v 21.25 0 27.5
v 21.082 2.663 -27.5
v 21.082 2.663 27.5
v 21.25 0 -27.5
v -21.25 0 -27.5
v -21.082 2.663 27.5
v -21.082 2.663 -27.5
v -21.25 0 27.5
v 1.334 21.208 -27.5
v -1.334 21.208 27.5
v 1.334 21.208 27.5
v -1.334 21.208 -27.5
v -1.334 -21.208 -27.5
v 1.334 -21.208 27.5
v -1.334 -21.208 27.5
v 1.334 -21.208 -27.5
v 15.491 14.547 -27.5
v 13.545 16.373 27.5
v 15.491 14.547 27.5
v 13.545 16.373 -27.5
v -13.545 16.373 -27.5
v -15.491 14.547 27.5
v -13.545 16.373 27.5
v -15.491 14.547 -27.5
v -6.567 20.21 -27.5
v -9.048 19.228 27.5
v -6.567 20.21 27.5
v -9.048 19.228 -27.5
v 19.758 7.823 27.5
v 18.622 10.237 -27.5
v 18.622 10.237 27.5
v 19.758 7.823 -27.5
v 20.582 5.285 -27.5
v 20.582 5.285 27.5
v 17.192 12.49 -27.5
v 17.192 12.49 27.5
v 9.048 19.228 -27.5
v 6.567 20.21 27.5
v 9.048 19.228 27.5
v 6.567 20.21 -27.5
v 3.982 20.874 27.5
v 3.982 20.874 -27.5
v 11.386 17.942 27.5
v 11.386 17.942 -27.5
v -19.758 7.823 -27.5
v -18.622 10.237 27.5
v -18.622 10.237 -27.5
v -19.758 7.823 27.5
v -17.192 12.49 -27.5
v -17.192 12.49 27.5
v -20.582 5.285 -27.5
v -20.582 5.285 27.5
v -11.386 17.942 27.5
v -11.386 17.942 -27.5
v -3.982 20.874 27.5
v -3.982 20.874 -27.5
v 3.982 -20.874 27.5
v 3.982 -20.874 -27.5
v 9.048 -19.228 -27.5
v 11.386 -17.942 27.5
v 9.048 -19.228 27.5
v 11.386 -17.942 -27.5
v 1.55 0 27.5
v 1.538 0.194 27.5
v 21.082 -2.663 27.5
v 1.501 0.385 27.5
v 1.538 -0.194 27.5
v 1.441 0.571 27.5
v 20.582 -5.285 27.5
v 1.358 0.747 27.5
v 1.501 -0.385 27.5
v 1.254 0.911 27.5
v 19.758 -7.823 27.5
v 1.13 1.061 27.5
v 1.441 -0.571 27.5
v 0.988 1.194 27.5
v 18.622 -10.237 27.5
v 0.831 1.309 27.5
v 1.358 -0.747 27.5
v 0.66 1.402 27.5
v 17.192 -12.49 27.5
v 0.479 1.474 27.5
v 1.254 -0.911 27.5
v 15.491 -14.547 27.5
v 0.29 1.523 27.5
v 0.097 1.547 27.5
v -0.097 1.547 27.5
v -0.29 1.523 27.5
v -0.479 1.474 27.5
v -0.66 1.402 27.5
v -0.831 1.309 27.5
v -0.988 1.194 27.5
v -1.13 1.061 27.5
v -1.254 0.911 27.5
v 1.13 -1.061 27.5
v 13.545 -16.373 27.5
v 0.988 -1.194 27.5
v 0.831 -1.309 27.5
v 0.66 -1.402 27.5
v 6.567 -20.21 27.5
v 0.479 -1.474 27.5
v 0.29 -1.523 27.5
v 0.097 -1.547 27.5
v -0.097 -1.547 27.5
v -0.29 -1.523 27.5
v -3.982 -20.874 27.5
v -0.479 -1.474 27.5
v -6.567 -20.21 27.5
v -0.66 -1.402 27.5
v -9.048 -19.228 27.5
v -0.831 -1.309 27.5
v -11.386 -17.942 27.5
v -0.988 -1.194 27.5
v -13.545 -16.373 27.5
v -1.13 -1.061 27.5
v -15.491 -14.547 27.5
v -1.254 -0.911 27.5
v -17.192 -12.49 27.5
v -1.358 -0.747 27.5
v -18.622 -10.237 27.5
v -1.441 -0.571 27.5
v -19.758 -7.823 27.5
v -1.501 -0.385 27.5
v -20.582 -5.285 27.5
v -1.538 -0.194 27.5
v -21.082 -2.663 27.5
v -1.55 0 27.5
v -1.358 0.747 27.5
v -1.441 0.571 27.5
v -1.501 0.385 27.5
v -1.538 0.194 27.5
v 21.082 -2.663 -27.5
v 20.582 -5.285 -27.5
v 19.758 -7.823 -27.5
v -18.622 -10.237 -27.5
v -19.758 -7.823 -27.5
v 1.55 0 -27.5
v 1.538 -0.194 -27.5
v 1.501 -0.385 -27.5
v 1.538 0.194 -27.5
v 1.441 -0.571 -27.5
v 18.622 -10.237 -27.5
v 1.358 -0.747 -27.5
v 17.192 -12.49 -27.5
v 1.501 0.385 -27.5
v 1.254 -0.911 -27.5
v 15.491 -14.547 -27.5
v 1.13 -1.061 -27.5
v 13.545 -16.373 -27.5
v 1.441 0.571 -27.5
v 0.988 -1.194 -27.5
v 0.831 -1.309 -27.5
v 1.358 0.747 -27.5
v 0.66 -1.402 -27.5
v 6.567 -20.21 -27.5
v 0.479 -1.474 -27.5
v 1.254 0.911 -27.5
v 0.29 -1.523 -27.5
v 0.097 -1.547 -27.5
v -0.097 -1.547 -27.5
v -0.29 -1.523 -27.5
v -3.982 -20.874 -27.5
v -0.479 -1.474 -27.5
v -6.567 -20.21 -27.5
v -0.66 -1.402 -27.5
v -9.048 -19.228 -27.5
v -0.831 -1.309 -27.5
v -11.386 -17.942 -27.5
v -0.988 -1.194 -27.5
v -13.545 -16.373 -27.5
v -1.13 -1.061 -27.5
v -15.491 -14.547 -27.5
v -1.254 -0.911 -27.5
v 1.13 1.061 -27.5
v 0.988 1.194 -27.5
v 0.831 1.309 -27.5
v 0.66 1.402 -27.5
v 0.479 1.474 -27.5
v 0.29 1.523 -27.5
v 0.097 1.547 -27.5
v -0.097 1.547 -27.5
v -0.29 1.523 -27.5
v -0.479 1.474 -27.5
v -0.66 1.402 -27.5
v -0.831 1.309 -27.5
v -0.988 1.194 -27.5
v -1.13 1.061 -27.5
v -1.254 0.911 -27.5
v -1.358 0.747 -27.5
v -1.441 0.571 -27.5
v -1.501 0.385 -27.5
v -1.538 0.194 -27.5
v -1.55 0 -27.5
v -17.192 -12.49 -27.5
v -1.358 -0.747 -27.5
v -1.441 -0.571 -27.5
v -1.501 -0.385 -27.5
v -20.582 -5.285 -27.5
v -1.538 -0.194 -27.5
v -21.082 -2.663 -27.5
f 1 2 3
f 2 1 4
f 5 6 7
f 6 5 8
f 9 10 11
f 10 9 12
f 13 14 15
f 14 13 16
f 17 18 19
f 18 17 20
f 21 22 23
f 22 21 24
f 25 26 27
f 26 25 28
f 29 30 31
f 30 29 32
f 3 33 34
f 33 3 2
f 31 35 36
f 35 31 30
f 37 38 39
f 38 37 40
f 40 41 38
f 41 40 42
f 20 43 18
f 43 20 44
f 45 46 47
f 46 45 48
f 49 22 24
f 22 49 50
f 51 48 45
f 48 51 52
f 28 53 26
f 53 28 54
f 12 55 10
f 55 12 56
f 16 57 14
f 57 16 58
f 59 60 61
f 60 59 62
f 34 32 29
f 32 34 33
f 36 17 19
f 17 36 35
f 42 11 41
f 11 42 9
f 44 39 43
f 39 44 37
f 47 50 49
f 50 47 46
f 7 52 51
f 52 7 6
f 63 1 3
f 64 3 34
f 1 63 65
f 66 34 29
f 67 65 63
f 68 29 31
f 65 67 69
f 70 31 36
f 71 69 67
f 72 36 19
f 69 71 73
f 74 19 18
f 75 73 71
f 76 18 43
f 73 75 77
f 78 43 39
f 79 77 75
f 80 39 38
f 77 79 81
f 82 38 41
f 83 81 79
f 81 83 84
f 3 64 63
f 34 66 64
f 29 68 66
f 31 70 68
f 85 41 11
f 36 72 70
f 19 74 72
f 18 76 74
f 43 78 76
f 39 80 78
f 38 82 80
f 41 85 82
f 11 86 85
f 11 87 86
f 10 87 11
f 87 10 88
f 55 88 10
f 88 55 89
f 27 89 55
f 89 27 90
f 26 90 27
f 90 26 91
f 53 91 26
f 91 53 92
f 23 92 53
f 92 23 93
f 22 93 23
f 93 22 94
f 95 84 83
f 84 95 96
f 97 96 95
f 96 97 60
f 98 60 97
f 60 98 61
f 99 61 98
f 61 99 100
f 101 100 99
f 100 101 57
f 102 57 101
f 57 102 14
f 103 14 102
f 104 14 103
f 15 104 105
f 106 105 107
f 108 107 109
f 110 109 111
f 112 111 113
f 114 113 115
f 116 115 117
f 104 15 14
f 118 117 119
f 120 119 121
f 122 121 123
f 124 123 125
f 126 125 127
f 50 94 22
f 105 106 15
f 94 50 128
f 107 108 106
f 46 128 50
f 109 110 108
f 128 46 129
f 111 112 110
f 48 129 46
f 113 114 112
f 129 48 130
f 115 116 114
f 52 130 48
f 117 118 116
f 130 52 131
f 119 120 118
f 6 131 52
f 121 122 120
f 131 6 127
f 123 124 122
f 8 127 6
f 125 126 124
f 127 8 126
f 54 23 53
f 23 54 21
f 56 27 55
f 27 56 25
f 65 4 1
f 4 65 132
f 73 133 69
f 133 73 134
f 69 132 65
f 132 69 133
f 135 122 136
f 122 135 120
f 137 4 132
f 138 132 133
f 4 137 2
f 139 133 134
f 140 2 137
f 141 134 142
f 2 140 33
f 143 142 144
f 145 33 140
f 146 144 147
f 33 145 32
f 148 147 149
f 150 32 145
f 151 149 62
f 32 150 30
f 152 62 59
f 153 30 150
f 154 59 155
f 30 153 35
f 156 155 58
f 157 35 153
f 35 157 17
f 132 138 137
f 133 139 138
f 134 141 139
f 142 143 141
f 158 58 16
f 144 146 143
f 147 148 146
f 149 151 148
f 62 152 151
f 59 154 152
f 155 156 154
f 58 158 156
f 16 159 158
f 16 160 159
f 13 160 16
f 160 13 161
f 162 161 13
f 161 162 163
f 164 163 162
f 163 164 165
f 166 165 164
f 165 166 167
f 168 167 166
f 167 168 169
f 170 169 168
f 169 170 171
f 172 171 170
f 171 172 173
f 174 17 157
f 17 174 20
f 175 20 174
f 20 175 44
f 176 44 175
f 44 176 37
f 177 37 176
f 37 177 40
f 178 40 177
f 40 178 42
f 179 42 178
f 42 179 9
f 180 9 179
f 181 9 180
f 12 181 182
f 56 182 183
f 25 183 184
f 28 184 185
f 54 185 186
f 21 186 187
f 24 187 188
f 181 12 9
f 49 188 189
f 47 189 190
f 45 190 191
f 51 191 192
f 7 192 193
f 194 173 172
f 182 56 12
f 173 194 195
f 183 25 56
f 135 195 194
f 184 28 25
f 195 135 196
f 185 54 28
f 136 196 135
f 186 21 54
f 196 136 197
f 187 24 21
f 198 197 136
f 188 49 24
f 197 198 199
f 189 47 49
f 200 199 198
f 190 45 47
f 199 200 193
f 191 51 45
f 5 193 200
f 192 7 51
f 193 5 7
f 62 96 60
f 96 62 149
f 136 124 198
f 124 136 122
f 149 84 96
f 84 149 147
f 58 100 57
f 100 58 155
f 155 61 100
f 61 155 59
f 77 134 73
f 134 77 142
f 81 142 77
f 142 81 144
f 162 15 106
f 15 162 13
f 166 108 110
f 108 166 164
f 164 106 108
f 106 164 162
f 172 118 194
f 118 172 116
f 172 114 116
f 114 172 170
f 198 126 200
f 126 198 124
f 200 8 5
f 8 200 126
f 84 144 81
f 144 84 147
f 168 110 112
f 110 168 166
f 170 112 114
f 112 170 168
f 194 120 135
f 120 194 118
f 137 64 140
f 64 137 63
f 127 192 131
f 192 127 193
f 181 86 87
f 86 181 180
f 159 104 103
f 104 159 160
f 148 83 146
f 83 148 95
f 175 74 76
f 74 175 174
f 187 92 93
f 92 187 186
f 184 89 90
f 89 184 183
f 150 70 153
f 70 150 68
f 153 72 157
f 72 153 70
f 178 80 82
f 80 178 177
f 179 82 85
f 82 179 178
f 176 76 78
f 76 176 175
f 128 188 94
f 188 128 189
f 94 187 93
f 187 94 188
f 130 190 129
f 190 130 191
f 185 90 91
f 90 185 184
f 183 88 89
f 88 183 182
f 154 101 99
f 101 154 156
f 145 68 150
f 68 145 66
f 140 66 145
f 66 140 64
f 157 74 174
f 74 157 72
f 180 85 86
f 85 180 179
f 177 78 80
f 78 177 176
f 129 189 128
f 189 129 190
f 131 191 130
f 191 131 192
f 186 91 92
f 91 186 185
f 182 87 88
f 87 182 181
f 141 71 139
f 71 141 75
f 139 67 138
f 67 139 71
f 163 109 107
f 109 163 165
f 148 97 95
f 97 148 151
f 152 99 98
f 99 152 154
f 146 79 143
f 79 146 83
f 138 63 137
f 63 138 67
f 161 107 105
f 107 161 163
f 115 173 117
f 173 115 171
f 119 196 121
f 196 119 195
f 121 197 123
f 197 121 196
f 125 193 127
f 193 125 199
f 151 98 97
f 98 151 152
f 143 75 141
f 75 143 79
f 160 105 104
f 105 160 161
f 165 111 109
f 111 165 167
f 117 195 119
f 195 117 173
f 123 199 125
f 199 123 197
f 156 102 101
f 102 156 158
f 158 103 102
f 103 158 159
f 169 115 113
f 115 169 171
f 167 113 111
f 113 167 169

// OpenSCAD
$fn = 50;


difference() {
	union() {
		translate(v = [0, 0, -27.5000000000]) {
			cylinder(h = 55, r = 21.2500000000);
		}
	}
	union() {
		translate(v = [0, 0, -100.0000000000]) {
			cylinder(h = 200, r = 1.5500000000);
		}
	}
}
